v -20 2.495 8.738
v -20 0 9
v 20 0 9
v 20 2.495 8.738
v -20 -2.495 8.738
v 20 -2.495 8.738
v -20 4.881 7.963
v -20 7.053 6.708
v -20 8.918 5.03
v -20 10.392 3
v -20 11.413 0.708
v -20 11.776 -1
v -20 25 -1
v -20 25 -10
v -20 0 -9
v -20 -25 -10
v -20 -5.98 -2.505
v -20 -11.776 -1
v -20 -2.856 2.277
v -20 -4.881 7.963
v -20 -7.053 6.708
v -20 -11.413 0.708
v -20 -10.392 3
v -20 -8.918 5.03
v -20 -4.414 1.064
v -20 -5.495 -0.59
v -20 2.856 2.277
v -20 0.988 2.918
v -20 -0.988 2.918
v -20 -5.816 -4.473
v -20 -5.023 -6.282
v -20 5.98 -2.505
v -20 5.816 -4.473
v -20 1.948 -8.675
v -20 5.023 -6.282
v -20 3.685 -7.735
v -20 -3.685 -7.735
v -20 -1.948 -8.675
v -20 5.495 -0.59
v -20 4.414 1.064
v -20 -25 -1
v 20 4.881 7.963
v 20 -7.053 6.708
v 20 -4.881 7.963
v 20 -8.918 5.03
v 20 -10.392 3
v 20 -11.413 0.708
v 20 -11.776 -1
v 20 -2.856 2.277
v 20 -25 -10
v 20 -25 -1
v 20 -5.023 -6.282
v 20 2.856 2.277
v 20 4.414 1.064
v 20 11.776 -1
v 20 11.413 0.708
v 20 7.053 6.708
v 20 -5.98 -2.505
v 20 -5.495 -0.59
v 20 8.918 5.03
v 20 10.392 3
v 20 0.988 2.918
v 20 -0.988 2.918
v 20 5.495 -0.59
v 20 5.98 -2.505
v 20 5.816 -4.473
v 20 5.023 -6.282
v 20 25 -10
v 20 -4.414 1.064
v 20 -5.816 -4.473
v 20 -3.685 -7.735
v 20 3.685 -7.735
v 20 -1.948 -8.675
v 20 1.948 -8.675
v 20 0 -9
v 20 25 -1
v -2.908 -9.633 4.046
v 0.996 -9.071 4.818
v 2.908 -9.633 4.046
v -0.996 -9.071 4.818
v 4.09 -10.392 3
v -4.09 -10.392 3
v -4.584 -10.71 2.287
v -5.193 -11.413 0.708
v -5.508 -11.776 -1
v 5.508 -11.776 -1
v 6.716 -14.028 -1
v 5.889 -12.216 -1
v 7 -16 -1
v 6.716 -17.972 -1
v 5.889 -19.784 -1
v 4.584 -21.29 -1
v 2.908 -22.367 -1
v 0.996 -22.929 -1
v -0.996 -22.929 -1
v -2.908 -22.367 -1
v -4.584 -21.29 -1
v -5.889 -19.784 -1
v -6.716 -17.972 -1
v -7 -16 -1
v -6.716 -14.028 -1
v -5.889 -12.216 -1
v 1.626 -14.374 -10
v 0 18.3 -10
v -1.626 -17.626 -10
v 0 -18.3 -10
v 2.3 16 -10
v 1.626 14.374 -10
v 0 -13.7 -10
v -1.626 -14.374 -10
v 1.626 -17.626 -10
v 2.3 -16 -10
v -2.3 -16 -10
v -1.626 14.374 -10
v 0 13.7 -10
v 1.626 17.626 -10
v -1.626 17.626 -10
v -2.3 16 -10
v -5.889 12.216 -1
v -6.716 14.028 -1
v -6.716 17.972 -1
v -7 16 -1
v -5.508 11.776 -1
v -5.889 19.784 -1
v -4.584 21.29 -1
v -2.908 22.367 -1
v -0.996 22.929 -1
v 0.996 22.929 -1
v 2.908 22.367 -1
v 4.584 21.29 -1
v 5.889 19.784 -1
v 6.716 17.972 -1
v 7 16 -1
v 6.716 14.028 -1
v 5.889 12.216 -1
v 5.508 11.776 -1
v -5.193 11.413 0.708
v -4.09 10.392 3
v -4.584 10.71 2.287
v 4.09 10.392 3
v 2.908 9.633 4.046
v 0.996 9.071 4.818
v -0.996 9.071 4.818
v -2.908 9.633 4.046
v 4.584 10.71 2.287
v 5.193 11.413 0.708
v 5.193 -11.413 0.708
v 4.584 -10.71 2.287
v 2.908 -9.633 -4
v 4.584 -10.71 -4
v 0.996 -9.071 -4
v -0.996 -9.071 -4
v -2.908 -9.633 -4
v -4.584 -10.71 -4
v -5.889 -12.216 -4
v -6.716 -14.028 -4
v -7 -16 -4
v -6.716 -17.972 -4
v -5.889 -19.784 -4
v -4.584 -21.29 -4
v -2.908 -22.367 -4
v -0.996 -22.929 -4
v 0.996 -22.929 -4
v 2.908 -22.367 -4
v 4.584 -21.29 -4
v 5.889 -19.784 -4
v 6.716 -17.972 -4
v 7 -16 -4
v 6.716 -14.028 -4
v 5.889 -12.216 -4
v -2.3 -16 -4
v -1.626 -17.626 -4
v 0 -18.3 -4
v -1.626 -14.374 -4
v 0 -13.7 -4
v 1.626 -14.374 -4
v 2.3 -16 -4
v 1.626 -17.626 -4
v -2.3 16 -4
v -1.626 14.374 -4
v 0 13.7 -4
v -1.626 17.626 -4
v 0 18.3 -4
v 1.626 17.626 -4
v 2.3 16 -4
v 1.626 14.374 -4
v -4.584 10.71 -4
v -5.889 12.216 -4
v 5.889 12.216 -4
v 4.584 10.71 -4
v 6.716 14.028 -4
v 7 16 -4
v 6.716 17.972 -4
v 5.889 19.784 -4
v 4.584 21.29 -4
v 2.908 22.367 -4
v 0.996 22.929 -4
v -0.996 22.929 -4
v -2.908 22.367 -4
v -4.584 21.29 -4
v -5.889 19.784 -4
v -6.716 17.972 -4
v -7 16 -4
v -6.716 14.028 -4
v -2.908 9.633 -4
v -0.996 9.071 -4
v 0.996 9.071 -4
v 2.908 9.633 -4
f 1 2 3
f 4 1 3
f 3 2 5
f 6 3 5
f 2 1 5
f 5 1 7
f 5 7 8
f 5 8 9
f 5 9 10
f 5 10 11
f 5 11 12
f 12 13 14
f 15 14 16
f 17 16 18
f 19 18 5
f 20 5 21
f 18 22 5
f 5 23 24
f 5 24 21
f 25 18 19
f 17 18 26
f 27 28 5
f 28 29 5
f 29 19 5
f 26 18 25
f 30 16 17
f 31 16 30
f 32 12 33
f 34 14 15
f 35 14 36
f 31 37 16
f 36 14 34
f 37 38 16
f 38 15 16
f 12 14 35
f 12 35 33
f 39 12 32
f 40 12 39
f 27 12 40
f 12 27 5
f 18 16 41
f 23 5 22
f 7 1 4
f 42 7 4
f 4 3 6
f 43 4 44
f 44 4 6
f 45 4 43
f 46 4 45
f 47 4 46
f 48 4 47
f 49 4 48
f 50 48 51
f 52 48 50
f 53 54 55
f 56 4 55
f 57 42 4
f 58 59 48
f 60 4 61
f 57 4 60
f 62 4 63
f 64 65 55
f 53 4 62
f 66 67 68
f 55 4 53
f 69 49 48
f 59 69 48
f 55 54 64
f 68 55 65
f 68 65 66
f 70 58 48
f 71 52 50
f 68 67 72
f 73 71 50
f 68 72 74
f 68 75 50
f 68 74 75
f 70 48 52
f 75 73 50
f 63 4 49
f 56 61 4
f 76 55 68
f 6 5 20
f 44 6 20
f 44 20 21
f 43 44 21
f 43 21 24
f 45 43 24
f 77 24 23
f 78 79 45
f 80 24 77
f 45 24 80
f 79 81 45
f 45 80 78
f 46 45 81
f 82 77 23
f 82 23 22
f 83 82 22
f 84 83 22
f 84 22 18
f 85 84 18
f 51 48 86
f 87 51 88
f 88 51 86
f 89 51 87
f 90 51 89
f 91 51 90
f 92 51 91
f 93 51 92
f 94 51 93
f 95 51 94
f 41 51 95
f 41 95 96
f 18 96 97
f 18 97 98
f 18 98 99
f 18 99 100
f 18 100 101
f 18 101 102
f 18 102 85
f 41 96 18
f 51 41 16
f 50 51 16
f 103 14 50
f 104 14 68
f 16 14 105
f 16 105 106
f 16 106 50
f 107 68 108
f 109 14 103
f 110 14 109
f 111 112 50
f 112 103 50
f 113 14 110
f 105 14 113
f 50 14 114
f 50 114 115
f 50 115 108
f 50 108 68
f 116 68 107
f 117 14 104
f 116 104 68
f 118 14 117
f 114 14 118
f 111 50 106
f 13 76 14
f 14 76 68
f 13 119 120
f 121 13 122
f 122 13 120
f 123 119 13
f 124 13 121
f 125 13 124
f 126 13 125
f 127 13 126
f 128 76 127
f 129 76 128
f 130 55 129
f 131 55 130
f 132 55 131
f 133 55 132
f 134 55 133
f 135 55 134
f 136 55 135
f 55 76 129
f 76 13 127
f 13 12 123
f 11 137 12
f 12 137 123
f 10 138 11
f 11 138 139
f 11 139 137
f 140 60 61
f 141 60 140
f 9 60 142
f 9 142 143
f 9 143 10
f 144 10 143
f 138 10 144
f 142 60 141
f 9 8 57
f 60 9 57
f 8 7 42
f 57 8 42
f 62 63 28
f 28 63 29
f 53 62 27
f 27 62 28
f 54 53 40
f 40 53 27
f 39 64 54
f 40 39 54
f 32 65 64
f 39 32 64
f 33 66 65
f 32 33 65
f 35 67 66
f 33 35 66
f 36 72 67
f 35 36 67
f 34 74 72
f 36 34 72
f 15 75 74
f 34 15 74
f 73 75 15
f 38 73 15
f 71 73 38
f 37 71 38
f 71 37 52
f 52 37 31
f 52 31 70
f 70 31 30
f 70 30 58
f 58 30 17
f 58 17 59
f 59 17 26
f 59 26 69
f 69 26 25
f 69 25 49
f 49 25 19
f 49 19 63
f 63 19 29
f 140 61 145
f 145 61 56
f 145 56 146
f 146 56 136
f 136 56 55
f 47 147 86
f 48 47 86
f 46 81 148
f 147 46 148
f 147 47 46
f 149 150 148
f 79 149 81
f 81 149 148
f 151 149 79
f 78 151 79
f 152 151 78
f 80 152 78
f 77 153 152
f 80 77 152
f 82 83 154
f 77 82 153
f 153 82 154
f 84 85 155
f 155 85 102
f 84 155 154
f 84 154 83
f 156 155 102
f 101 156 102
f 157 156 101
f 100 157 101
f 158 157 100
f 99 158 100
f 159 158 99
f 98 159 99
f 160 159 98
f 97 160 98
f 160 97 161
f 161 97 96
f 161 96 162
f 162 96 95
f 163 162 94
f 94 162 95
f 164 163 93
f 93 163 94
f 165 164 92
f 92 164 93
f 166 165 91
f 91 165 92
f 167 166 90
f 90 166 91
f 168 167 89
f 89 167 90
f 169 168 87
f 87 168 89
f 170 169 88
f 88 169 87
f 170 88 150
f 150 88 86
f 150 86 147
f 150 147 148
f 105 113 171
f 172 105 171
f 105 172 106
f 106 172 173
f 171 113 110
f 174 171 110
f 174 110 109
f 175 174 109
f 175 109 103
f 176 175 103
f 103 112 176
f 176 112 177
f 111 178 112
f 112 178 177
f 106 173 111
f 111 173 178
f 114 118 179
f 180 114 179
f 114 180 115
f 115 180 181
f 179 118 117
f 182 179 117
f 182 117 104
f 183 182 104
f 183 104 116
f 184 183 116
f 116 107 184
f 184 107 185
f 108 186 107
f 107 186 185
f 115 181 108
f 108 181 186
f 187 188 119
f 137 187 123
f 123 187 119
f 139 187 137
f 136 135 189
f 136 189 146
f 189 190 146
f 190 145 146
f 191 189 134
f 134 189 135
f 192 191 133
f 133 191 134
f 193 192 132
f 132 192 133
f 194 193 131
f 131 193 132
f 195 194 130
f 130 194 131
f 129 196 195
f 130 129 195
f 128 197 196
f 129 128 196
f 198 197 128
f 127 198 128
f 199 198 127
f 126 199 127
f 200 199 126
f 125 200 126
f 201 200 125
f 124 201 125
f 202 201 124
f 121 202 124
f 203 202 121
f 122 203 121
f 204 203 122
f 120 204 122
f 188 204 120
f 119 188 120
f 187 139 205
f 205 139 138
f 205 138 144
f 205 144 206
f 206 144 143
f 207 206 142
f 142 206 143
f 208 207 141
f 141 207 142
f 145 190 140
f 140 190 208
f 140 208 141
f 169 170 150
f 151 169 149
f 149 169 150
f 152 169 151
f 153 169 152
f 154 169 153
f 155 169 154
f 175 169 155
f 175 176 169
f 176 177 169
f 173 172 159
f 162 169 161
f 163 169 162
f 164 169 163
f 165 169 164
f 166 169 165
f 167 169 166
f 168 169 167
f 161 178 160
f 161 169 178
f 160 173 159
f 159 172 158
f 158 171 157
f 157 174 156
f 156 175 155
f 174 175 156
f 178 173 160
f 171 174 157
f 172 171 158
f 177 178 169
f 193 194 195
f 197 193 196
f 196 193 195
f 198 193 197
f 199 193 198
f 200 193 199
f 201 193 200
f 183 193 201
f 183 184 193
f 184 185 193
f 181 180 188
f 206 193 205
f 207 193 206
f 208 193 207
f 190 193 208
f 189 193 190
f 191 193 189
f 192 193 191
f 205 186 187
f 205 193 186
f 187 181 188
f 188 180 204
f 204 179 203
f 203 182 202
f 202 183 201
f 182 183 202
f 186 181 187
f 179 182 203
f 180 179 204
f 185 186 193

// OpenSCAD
module peza() {
 difference(){
   difference() {
     cube([20,30+20,40], center=true);
     translate( [3,0,-20] )
         cylinder(r1=6,r2=6,h=101 );
       //cube([12,12,40], center=true);
   }
   union() {
     translate([-12,-16,0])
       rotate([0,90,0])
         cylinder(r1=7,r2=7,h=16 );
     translate([-14,-16,0])
       rotate([0,90,0])
         cylinder(r1=2.3,r2=2.3,h=300 );

     translate([-12,16,0])
       rotate([0,90,0])
         cylinder(r1=7,r2=7,h=16 );
     translate([-14,16,0])
       rotate([0,90,0])
         cylinder(r1=2.3,r2=2.3,h=300 );
    
   } 
 }
}


module diferencia() {
   difference() {
     translate([-9,0,0]) cube([20,30+20,40], center=true);
     translate( [3,0,-20] )
         cylinder(r1=12,r2=12,h=101 );
       //cube([12,12,40], center=true);
   }
}


rotate([0,90,0])
 difference() {
  peza();
  diferencia();
 }
